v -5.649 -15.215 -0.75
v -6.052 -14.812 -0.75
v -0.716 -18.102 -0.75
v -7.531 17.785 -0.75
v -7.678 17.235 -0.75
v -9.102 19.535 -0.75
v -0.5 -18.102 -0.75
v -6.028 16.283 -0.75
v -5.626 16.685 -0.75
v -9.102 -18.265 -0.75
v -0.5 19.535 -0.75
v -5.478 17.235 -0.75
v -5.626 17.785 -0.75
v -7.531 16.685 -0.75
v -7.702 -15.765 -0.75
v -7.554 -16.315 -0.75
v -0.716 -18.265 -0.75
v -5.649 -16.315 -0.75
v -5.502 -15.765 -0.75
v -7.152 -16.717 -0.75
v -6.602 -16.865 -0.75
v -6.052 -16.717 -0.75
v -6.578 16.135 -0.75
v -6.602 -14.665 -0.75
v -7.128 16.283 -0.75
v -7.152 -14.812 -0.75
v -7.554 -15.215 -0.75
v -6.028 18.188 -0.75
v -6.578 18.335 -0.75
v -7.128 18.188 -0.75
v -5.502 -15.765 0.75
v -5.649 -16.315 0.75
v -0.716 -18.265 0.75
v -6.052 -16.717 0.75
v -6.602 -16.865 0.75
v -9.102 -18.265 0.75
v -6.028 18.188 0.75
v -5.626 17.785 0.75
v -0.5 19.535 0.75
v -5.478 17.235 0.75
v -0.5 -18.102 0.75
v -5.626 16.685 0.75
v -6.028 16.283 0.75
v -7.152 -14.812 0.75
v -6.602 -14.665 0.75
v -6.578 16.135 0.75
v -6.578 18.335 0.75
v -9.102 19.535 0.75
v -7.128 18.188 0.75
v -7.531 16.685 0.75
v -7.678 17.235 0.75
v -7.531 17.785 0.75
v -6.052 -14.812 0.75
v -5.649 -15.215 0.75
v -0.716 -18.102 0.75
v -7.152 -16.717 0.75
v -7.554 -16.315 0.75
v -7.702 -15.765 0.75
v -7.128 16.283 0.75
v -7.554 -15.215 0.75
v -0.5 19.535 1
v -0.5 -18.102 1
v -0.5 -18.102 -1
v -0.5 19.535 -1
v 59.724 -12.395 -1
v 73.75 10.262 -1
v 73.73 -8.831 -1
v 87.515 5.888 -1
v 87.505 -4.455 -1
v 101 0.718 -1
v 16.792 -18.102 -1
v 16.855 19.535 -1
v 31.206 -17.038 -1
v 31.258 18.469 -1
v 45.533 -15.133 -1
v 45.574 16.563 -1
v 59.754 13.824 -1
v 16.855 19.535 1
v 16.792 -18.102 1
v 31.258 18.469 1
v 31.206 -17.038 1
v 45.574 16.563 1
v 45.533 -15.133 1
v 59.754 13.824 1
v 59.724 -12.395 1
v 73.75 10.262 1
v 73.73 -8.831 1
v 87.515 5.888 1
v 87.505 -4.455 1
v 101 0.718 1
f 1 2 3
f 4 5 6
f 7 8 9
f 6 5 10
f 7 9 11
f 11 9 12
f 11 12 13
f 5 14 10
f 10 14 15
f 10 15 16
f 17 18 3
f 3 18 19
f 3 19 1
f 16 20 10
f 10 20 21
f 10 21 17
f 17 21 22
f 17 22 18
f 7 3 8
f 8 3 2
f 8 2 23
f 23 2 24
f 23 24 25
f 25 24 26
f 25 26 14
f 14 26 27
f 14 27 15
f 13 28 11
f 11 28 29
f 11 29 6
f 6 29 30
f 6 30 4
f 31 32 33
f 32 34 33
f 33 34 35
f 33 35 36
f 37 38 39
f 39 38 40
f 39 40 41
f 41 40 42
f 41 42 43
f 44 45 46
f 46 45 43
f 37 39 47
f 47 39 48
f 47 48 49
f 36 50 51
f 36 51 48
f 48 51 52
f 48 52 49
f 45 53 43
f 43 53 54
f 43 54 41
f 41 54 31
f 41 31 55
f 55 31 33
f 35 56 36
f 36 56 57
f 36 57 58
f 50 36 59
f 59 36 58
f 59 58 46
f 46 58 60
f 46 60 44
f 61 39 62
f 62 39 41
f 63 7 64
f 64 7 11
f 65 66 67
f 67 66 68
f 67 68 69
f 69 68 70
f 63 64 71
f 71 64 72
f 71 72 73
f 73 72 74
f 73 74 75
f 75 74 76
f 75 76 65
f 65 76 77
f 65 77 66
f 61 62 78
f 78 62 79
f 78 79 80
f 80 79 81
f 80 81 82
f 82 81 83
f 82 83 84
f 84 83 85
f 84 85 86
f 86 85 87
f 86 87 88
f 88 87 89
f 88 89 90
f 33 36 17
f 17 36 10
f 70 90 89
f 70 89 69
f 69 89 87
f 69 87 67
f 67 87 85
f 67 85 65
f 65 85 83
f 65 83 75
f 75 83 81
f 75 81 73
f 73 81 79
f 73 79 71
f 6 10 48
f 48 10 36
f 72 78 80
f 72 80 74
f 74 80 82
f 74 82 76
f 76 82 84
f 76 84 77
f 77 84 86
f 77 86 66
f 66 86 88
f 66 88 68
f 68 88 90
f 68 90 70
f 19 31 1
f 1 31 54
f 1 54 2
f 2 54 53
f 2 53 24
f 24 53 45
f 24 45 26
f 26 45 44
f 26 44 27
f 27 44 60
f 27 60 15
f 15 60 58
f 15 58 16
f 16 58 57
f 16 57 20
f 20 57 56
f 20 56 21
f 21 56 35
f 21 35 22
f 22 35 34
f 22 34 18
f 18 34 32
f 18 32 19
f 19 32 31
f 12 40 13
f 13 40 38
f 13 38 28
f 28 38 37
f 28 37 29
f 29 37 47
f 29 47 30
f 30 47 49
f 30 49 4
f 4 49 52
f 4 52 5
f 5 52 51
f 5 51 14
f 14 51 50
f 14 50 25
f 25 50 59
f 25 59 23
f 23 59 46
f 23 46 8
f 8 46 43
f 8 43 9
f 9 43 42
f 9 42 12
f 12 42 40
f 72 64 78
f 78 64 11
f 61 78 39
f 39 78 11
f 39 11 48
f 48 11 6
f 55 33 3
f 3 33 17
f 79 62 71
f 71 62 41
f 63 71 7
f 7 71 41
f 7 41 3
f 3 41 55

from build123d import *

# Parameters (mm, degrees)
EXTRUDE_1_DEPTH          = 0.75
EXTRUDE_1_DEPTH_BACK     = 0.75
SKETCH_1_W               = 10
SKETCH_1_H               = 38
SKETCH_1_R               = 1.1
SKETCH_3_W               = 20
SKETCH_3_H               = 38.036879249
EXTRUDE_2_DEPTH          = 1.5
EXTRUDE_3_DEPTH          = 1
EXTRUDE_3_DEPTH_BACK     = 1
CUT_EXTRUDE_4_DEPTH      = 0.2
CUT_EXTRUDE_4_DEPTH_BACK = 0.2
SKETCH_10_W              = 112.497058814
SKETCH_10_H              = 20.543414641
CUT_EXTRUDE_5_DEPTH      = 0.2
CUT_EXTRUDE_5_DEPTH_BACK = 0.2
SKETCH_11_W              = 104.514605189
SKETCH_11_H              = 21.657747512
SKETCH_12_W              = 1.5
SKETCH_12_H              = 9
CUT_EXTRUDE_6_DEPTH      = 39


with BuildPart() as part:
    # 草圖1 → 填料-伸長1 (new, two sides: drawn at the far end of the back side and taken through both)
    with BuildSketch(Plane.XY.offset(-EXTRUDE_1_DEPTH_BACK)):
        with Locations((-4.101832994, 0.735234216)):
            Rectangle(SKETCH_1_W, SKETCH_1_H)
        with Locations((-6.601832994, -15.764765784)):
            Circle(SKETCH_1_R, mode=Mode.SUBTRACT)
        with Locations((-6.578411405, 17.235234216)):
            Circle(SKETCH_1_R, mode=Mode.SUBTRACT)
    extrude(amount=EXTRUDE_1_DEPTH + EXTRUDE_1_DEPTH_BACK)

    # 草圖3 → 填料-伸長2 (add)
    with BuildSketch(Plane(origin=(-0.5, 0, 0), x_dir=(0, 0, -1), z_dir=(1, 0, 0))):
        with Locations((0, 0.716794592)):
            Rectangle(SKETCH_3_W, SKETCH_3_H)
    extrude(amount=EXTRUDE_2_DEPTH)

    # 草圖4 → 填料-伸長3 (add, two sides: drawn at the far end of the back side and taken through both)
    with BuildSketch(Plane.XY.offset(-EXTRUDE_3_DEPTH_BACK)):
        with BuildLine():
            Line((1, 19.735234216), (1, -18.298860138))
            ThreePointArc((1, -18.298860138), (51.989546932, -13.993809638), (101, 0.718187039))
            ThreePointArc((101, 0.718187039), (51.989546932, 15.430183716), (1, 19.735234216))
        make_face()
    extrude(amount=EXTRUDE_3_DEPTH + EXTRUDE_3_DEPTH_BACK)

    # 草圖10 → 除料-伸長4 (cut, two sides: drawn at the far end of the back side and taken through both)
    with BuildSketch(Plane(origin=(0, 19.735234216, 0), x_dir=(1, 0, 0), z_dir=(0, 1, 0)).offset(-CUT_EXTRUDE_4_DEPTH_BACK)):
        with Locations((46.49437126, 0.271707321)):
            Rectangle(SKETCH_10_W, SKETCH_10_H)
    extrude(amount=CUT_EXTRUDE_4_DEPTH + CUT_EXTRUDE_4_DEPTH_BACK, mode=Mode.SUBTRACT)

    # 草圖11 → 除料-伸長5 (cut, two sides: drawn at the far end of the back side and taken through both)
    with BuildSketch(Plane(origin=(0, -18.301645033, 0), x_dir=(-1, 0, 0), z_dir=(0, -1, 0)).offset(-CUT_EXTRUDE_5_DEPTH_BACK)):
        with Locations((-51.541283716, 0.828873756)):
            Rectangle(SKETCH_11_W, SKETCH_11_H)
    extrude(amount=CUT_EXTRUDE_5_DEPTH + CUT_EXTRUDE_5_DEPTH_BACK, mode=Mode.SUBTRACT)

    # 草圖12 → 除料-伸長6 (cut)
    with BuildSketch(Plane(origin=(0, 19.735234216, 0), x_dir=(1, 0, 0), z_dir=(0, 1, 0))):
        with Locations((0.25, -5.5)):
            Rectangle(SKETCH_12_W, SKETCH_12_H)
        with Locations((0.25, 5.5)):
            Rectangle(SKETCH_12_W, SKETCH_12_H)
    extrude(amount=-CUT_EXTRUDE_6_DEPTH, mode=Mode.SUBTRACT)


solid = part.part
